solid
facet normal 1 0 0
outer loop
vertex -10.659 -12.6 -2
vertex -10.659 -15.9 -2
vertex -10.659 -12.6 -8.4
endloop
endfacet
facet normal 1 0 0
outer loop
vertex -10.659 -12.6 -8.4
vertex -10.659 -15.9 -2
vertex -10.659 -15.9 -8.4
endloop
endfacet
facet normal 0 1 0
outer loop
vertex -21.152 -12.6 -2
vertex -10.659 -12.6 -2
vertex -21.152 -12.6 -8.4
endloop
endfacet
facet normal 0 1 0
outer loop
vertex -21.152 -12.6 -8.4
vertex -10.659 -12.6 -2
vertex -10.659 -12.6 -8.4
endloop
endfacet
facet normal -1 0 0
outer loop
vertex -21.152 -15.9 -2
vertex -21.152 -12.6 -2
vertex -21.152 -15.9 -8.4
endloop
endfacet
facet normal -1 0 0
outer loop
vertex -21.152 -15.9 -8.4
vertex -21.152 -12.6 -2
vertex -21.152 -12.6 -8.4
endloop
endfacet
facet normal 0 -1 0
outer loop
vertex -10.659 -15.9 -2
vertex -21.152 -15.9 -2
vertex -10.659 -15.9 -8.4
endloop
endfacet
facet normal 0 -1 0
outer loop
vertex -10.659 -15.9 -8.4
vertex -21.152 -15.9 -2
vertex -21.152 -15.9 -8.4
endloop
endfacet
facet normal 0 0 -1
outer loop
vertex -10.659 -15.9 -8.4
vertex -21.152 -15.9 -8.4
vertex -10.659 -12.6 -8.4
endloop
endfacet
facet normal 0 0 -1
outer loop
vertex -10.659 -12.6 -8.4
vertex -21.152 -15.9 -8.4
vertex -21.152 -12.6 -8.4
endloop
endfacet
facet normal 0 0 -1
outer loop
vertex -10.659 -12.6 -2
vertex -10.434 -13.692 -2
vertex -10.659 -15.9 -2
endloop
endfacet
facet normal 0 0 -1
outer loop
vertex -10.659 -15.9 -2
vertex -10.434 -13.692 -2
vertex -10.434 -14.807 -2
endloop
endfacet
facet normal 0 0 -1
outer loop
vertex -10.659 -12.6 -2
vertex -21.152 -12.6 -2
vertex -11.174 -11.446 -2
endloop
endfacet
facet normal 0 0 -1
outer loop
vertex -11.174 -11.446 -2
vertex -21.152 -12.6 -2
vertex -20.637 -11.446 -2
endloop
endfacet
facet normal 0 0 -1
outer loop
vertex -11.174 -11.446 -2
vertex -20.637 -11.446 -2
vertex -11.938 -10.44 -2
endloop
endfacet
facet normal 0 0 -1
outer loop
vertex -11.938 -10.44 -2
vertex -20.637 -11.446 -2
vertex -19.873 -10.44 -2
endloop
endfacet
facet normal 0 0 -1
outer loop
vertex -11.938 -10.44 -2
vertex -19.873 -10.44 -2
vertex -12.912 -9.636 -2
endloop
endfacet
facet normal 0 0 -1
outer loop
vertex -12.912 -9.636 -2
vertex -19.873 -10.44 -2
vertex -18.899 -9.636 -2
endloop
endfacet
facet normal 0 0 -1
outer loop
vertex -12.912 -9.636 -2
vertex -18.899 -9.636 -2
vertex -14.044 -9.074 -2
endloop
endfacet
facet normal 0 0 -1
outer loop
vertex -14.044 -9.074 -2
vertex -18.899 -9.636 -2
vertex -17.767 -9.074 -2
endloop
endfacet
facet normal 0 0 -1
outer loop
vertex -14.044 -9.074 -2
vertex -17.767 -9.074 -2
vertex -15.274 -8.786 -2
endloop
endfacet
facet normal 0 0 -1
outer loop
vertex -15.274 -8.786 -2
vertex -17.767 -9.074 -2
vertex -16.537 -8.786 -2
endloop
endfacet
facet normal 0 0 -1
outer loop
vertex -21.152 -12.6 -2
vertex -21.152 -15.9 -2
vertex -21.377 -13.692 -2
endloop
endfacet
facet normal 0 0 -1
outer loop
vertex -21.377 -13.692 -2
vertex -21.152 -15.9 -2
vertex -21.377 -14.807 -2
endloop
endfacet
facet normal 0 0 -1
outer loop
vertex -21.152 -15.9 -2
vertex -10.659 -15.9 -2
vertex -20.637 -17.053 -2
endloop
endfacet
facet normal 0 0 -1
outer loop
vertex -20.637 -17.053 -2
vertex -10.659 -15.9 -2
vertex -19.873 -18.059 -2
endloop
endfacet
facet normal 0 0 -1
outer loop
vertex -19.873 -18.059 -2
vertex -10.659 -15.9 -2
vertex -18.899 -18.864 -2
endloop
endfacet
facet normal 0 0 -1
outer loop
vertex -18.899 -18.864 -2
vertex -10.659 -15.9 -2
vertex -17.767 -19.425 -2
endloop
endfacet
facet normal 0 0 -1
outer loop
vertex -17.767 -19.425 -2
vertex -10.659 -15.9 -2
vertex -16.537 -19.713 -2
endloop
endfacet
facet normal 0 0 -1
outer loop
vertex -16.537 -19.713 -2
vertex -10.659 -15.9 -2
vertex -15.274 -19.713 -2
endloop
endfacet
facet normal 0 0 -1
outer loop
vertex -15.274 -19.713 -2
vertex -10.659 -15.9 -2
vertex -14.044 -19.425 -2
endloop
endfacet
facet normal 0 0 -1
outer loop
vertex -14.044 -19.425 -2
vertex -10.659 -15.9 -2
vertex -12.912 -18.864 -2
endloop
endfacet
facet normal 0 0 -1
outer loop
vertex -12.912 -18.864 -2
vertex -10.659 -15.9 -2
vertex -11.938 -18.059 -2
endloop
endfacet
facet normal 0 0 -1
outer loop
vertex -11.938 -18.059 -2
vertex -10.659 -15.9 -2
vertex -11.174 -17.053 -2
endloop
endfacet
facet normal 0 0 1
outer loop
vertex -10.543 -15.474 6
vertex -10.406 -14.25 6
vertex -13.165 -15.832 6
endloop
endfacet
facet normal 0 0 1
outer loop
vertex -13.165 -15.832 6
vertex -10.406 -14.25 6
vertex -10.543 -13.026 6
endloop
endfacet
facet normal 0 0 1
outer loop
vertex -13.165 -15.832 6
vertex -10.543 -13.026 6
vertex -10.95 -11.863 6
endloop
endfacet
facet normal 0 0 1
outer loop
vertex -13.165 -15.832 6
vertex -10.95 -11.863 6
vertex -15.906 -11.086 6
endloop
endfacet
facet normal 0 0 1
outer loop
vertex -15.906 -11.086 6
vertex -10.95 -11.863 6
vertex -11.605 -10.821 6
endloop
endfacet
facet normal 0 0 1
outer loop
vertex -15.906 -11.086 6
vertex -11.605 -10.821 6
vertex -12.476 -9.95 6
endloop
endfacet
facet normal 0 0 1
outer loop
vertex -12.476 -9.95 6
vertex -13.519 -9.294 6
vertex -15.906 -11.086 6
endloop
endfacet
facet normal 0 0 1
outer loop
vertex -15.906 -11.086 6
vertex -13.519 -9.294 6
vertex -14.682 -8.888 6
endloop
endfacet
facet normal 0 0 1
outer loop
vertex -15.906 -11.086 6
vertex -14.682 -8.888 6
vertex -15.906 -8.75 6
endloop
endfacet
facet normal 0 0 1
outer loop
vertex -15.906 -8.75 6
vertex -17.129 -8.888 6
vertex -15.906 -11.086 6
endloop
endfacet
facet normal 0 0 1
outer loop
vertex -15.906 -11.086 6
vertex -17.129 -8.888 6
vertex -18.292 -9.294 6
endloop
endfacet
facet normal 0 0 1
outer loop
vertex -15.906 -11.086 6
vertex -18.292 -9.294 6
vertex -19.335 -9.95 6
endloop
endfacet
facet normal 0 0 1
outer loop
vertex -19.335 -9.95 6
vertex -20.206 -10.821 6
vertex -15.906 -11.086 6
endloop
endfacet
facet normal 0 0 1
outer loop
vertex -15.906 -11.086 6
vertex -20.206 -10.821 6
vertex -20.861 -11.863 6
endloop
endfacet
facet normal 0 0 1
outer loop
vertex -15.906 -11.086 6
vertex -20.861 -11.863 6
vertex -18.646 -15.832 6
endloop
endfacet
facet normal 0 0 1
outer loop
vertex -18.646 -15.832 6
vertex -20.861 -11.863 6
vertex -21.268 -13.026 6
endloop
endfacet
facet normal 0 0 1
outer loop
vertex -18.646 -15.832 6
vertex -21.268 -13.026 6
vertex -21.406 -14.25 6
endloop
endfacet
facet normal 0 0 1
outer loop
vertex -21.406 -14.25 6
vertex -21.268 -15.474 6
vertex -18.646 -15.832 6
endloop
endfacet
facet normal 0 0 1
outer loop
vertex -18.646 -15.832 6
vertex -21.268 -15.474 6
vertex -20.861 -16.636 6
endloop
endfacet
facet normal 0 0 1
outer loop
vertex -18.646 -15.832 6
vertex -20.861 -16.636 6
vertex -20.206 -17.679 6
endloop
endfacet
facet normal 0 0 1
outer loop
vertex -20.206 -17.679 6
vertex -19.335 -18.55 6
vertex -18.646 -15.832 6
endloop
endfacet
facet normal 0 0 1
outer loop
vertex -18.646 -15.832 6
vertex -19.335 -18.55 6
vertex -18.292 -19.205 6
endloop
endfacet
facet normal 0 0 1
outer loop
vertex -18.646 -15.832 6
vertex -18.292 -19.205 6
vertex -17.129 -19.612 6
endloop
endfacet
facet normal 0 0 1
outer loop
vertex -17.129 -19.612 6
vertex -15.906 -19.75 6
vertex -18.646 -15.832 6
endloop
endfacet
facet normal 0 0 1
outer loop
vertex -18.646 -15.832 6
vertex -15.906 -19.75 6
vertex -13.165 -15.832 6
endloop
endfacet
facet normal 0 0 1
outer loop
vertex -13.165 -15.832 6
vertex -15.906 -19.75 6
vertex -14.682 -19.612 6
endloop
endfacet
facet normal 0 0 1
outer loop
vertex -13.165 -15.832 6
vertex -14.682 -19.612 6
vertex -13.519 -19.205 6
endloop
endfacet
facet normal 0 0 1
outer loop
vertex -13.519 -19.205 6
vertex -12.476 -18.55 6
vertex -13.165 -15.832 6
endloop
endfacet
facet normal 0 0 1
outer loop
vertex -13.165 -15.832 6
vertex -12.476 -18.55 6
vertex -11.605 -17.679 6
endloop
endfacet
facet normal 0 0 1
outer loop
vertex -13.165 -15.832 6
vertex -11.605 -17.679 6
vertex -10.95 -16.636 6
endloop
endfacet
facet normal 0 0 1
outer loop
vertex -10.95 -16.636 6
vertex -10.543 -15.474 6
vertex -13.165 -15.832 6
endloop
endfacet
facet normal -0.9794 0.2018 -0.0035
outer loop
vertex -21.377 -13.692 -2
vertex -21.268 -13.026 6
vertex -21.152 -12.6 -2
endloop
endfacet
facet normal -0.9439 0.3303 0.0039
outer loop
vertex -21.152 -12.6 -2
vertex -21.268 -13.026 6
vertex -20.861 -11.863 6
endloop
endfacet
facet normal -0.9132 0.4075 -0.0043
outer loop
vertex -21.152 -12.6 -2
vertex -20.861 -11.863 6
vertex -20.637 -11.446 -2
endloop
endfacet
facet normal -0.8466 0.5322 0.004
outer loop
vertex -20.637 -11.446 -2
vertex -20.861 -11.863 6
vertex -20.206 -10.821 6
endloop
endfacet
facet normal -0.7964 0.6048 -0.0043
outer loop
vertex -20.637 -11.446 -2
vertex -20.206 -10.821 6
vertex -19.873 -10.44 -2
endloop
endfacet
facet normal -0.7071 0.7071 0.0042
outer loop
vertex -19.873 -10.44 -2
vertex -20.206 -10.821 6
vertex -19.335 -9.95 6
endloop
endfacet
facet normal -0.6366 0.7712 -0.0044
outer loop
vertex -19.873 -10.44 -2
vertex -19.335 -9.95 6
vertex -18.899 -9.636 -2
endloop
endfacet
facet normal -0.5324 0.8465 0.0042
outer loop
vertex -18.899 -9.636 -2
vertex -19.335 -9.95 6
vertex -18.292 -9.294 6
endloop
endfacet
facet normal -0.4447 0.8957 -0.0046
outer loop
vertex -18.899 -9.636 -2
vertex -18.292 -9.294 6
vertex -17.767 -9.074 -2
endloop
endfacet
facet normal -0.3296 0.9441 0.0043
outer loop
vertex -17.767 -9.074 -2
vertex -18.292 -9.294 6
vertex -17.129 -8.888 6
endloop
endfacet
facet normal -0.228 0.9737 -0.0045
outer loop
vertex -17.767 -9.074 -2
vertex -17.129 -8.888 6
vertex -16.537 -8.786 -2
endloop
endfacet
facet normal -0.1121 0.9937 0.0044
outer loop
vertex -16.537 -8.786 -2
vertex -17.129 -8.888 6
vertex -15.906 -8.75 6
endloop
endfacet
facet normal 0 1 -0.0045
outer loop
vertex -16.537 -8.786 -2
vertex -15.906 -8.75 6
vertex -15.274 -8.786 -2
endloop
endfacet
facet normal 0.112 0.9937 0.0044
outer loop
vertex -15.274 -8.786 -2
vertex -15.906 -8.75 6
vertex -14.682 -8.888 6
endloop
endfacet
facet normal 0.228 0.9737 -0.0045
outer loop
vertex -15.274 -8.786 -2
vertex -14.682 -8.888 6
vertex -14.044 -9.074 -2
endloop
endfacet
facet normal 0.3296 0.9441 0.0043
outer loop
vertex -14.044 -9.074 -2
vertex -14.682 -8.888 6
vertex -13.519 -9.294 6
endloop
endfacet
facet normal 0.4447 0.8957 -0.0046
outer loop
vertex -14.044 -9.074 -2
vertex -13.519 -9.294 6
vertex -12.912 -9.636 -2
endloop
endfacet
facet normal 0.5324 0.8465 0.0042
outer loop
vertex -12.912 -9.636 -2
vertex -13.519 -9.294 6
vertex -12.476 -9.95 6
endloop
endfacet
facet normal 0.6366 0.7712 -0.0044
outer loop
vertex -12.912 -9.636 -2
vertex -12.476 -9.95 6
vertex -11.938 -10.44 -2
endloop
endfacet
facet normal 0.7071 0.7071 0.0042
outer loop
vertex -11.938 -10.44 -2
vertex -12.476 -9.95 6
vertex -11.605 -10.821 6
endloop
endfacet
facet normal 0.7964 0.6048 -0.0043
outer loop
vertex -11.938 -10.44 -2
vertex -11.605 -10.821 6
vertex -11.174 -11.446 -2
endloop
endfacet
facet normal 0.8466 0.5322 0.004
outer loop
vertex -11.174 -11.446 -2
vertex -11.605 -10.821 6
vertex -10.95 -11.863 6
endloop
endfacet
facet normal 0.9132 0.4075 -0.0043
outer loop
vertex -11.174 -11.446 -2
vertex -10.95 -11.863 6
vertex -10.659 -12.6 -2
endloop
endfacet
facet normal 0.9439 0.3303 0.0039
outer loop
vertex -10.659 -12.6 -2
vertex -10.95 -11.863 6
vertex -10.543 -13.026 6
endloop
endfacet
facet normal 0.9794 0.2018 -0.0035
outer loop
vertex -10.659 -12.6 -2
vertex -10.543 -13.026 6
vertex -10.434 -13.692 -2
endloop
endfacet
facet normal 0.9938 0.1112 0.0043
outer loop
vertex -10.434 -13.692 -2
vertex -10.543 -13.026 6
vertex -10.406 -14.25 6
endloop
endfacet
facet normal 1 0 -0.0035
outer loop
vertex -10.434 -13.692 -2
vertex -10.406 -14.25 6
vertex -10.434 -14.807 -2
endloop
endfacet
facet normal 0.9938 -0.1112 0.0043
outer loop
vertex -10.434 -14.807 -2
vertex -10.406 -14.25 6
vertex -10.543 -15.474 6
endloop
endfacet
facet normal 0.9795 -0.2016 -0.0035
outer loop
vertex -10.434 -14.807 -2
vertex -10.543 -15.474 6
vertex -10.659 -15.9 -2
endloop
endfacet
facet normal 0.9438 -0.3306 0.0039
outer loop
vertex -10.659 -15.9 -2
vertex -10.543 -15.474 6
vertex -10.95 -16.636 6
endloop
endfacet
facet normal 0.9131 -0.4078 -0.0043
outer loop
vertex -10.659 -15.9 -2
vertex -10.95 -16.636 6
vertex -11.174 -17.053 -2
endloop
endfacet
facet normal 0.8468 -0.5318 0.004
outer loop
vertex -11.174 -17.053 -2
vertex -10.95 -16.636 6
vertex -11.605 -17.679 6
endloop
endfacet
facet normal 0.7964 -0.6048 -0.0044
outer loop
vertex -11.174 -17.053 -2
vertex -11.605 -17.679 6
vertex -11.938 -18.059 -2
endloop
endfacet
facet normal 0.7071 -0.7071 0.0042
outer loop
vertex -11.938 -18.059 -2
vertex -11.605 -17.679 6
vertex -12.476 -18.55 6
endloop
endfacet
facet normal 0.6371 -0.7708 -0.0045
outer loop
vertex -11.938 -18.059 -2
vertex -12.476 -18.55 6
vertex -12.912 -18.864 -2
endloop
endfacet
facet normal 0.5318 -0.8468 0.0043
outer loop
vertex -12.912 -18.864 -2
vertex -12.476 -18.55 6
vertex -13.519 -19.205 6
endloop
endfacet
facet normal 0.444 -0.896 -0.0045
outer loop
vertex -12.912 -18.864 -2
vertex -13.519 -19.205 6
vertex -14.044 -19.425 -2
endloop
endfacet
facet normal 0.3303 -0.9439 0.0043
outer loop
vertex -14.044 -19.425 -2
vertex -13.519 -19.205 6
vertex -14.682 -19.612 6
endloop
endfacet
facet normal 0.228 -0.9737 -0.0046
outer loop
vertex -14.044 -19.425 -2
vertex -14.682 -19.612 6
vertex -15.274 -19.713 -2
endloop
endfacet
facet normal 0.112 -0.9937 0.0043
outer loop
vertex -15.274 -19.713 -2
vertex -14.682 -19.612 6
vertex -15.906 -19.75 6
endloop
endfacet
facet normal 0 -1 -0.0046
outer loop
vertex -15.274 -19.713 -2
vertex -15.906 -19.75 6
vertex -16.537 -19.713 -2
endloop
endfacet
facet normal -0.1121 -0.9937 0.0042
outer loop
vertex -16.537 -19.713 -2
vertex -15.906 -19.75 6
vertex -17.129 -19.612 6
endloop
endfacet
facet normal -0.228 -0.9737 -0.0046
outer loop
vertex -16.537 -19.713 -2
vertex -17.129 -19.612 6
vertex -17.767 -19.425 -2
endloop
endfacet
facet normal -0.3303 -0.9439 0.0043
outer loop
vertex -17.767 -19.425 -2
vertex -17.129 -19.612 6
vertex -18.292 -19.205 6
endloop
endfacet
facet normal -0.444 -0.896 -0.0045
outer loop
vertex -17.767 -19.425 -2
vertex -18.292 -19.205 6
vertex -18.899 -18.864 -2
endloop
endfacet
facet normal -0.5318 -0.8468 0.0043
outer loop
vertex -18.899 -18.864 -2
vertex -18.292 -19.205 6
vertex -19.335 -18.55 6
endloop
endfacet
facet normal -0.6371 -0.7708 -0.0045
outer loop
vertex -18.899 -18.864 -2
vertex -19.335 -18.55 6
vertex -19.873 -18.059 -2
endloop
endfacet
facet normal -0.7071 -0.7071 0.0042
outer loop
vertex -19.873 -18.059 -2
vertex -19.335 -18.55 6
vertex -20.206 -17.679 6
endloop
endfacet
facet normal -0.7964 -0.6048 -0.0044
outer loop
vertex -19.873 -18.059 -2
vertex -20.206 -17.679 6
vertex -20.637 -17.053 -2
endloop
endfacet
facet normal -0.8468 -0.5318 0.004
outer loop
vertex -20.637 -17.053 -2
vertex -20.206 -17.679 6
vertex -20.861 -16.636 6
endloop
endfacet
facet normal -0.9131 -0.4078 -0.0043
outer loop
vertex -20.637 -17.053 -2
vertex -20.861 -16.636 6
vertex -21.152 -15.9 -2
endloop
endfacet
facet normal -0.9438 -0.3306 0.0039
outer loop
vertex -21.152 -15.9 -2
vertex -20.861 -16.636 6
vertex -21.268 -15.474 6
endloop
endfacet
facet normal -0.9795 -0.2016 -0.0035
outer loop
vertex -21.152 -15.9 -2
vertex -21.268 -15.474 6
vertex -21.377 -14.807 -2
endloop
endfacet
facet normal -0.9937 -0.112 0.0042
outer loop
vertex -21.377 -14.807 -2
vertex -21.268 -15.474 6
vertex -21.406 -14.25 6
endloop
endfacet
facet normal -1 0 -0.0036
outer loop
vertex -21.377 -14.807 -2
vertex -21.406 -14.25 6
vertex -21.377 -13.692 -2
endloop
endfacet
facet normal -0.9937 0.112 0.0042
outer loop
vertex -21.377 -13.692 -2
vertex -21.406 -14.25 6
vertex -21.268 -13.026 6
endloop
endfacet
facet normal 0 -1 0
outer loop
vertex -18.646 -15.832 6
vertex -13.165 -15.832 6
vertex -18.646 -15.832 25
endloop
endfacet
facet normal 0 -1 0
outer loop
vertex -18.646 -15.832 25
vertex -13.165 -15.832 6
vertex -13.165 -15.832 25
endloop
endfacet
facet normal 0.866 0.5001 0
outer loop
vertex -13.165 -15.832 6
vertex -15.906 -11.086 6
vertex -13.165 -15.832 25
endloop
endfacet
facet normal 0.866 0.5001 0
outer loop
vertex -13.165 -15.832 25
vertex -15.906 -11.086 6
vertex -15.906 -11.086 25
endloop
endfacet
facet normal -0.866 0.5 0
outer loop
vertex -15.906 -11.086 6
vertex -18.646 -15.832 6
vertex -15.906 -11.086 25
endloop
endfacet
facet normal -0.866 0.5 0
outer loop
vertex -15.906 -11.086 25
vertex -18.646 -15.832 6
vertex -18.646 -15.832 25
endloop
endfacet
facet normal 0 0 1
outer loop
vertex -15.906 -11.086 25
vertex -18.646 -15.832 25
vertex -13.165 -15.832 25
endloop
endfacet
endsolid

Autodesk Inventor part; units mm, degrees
ref_plane "YZ Plane" through (0, 0, 0) normal (1, 0, 0) x (0, 1, 0)
ref_plane "XZ Plane" through (0, 0, 0) normal (0, 1, 0) x (-1, 0, 0)
sketch "Sketch1" plane through (0, 0, 0) normal (0, 0, 1) x (1, 0, 0)
  line L0 (-12.037, -14.2497) -> (-13.9713, -17.6) construction
  line L1 (-13.9713, -17.6) -> (-17.8398, -17.6) construction
  line L2 (-17.8398, -17.6) -> (-19.774, -14.2497) construction
  line L3 (-19.774, -14.2497) -> (-17.8398, -10.8995) construction
  line L4 (-17.8398, -10.8995) -> (-13.9713, -10.8995) construction
  line L5 (-13.9713, -10.8995) -> (-12.037, -14.2497) construction
  circle A0 centre (-15.9055, -14.2497) radius 28.486 construction
  line L6 (-12.1525, -14.2497) -> (-14.029, -17.5)
  line L7 (-14.029, -17.5) -> (-17.782, -17.5)
  line L8 (-17.782, -17.5) -> (-19.6585, -14.2497)
  line L9 (-19.6585, -14.2497) -> (-17.782, -10.9995)
  line L10 (-17.782, -10.9995) -> (-14.029, -10.9995) construction
  line L11 (-14.029, -10.9995) -> (-12.1525, -14.2497)
  line L12 (-15.9055, -10.7856) -> (-18.9055, -15.9818) construction
  line L13 (-18.9055, -15.9818) -> (-12.9055, -15.9818) construction
  line L14 (-12.9055, -15.9818) -> (-15.9055, -10.7856) construction
  line L15 (-15.9055, -11.0856) -> (-18.6457, -15.8318)
  line L16 (-18.6457, -15.8318) -> (-13.1653, -15.8318)
  line L17 (-13.1653, -15.8318) -> (-15.9055, -11.0856)
  point P0 (0, 0)
  dimension "d0" = 0.1
  dimension "d14" = 0.15
extrude "Extrusion1" add sketch "Sketch1" along normal blind 25
sketch "Sketch2" plane through (0, 0, 0) normal (0, 0, 1) x (1, 0, 0)
  circle A0 centre (-15.9055, -14.2497) radius 6 construction
  circle A1 centre (-15.9055, -14.2497) radius 5.5
  point P0 (0, 0)
  dimension "d3" = 0.5
extrude "Extrusion2" add sketch "Sketch2" along normal blind 6
sketch "Sketch3" plane through (-15.9055, -14.2497, 0) normal (0, 0, -1) x (-1, 0, 0)
  circle A0 centre (0, 0) radius 5.5 projected
  point P0 (-15.9055, 14.2497)
ref_plane "Work Plane1" through (-52.6055, -32.2497, -2) normal (0, 0, 1) x (1, 0, 0)
extrude "Extrusion3" add sketch "Sketch3" along normal up to surface (2 mm away)
sketch "Sketch4" plane through (-15.9055, -14.2497, -2) normal (0, 0, -1) x (-1, 0, 0)
  circle A0 centre (0, 0) radius 5.5 projected
  circle A1 centre (0, 0) radius 5.5 projected
  line L0 (-5.2467, -1.65) -> (5.2467, -1.65)
  line L1 (5.2467, -1.65) -> (5.2467, 1.65)
  line L2 (5.2467, 1.65) -> (-5.2467, 1.65)
  line L3 (-5.2467, 1.65) -> (-5.2467, -1.65)
  line L4 (-5.2467, -1.65) -> (5.2467, 1.65) construction
  line L5 (5.2467, -1.65) -> (-5.2467, 1.65) construction
  point P0 (-15.9055, 14.2497)
  dimension "d8" = 3.3
extrude "Extrusion4" add sketch "Sketch4" along normal blind 6.4 contours L1 L0 L3 L2
properties part number "rotor"
